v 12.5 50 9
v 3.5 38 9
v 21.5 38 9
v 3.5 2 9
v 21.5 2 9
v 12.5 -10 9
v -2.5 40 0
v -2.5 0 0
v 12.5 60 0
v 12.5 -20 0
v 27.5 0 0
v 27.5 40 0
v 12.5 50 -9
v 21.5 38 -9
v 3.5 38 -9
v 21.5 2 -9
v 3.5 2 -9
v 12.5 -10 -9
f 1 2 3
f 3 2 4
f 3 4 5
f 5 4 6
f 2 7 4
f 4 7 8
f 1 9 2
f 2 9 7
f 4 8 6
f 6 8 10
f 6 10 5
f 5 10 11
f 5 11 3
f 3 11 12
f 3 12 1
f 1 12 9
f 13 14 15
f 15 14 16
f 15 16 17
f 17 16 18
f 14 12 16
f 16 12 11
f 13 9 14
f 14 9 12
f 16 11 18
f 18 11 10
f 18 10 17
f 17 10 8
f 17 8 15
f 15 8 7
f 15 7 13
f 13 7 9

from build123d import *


with BuildPart() as part:
    # Base → Recubrir3 section 0
    with BuildSketch(Plane.XY):
        Polygon((27.5, 0), (27.5, 40), (12.5, 60), (-2.5, 40), (-2.5, 0), (12.5, -20), align=None)
    # Extrude 2 → Recubrir3 section 1
    with BuildSketch(Plane.XY.offset(9)):
        Polygon((3.5, 38), (3.5, 2), (12.5, -10), (21.5, 2), (21.5, 38), (12.5, 50), align=None)
    loft()

    # Base 2 → Recubrir4 section 0
    with BuildSketch(Plane.XY):
        Polygon((27.5, 0), (27.5, 40), (12.5, 60), (-2.5, 40), (-2.5, 0), (12.5, -20), align=None)
    # Croquis7 → Recubrir4 section 1
    with BuildSketch(Plane(origin=(0, 0, -9), x_dir=(-1, 0, 0), z_dir=(0, 0, -1))):
        Polygon((-21.5, 38), (-12.5, 50), (-3.5, 38), (-3.5, 2), (-12.5, -10), (-21.5, 2), align=None)
    loft()


solid = part.part
